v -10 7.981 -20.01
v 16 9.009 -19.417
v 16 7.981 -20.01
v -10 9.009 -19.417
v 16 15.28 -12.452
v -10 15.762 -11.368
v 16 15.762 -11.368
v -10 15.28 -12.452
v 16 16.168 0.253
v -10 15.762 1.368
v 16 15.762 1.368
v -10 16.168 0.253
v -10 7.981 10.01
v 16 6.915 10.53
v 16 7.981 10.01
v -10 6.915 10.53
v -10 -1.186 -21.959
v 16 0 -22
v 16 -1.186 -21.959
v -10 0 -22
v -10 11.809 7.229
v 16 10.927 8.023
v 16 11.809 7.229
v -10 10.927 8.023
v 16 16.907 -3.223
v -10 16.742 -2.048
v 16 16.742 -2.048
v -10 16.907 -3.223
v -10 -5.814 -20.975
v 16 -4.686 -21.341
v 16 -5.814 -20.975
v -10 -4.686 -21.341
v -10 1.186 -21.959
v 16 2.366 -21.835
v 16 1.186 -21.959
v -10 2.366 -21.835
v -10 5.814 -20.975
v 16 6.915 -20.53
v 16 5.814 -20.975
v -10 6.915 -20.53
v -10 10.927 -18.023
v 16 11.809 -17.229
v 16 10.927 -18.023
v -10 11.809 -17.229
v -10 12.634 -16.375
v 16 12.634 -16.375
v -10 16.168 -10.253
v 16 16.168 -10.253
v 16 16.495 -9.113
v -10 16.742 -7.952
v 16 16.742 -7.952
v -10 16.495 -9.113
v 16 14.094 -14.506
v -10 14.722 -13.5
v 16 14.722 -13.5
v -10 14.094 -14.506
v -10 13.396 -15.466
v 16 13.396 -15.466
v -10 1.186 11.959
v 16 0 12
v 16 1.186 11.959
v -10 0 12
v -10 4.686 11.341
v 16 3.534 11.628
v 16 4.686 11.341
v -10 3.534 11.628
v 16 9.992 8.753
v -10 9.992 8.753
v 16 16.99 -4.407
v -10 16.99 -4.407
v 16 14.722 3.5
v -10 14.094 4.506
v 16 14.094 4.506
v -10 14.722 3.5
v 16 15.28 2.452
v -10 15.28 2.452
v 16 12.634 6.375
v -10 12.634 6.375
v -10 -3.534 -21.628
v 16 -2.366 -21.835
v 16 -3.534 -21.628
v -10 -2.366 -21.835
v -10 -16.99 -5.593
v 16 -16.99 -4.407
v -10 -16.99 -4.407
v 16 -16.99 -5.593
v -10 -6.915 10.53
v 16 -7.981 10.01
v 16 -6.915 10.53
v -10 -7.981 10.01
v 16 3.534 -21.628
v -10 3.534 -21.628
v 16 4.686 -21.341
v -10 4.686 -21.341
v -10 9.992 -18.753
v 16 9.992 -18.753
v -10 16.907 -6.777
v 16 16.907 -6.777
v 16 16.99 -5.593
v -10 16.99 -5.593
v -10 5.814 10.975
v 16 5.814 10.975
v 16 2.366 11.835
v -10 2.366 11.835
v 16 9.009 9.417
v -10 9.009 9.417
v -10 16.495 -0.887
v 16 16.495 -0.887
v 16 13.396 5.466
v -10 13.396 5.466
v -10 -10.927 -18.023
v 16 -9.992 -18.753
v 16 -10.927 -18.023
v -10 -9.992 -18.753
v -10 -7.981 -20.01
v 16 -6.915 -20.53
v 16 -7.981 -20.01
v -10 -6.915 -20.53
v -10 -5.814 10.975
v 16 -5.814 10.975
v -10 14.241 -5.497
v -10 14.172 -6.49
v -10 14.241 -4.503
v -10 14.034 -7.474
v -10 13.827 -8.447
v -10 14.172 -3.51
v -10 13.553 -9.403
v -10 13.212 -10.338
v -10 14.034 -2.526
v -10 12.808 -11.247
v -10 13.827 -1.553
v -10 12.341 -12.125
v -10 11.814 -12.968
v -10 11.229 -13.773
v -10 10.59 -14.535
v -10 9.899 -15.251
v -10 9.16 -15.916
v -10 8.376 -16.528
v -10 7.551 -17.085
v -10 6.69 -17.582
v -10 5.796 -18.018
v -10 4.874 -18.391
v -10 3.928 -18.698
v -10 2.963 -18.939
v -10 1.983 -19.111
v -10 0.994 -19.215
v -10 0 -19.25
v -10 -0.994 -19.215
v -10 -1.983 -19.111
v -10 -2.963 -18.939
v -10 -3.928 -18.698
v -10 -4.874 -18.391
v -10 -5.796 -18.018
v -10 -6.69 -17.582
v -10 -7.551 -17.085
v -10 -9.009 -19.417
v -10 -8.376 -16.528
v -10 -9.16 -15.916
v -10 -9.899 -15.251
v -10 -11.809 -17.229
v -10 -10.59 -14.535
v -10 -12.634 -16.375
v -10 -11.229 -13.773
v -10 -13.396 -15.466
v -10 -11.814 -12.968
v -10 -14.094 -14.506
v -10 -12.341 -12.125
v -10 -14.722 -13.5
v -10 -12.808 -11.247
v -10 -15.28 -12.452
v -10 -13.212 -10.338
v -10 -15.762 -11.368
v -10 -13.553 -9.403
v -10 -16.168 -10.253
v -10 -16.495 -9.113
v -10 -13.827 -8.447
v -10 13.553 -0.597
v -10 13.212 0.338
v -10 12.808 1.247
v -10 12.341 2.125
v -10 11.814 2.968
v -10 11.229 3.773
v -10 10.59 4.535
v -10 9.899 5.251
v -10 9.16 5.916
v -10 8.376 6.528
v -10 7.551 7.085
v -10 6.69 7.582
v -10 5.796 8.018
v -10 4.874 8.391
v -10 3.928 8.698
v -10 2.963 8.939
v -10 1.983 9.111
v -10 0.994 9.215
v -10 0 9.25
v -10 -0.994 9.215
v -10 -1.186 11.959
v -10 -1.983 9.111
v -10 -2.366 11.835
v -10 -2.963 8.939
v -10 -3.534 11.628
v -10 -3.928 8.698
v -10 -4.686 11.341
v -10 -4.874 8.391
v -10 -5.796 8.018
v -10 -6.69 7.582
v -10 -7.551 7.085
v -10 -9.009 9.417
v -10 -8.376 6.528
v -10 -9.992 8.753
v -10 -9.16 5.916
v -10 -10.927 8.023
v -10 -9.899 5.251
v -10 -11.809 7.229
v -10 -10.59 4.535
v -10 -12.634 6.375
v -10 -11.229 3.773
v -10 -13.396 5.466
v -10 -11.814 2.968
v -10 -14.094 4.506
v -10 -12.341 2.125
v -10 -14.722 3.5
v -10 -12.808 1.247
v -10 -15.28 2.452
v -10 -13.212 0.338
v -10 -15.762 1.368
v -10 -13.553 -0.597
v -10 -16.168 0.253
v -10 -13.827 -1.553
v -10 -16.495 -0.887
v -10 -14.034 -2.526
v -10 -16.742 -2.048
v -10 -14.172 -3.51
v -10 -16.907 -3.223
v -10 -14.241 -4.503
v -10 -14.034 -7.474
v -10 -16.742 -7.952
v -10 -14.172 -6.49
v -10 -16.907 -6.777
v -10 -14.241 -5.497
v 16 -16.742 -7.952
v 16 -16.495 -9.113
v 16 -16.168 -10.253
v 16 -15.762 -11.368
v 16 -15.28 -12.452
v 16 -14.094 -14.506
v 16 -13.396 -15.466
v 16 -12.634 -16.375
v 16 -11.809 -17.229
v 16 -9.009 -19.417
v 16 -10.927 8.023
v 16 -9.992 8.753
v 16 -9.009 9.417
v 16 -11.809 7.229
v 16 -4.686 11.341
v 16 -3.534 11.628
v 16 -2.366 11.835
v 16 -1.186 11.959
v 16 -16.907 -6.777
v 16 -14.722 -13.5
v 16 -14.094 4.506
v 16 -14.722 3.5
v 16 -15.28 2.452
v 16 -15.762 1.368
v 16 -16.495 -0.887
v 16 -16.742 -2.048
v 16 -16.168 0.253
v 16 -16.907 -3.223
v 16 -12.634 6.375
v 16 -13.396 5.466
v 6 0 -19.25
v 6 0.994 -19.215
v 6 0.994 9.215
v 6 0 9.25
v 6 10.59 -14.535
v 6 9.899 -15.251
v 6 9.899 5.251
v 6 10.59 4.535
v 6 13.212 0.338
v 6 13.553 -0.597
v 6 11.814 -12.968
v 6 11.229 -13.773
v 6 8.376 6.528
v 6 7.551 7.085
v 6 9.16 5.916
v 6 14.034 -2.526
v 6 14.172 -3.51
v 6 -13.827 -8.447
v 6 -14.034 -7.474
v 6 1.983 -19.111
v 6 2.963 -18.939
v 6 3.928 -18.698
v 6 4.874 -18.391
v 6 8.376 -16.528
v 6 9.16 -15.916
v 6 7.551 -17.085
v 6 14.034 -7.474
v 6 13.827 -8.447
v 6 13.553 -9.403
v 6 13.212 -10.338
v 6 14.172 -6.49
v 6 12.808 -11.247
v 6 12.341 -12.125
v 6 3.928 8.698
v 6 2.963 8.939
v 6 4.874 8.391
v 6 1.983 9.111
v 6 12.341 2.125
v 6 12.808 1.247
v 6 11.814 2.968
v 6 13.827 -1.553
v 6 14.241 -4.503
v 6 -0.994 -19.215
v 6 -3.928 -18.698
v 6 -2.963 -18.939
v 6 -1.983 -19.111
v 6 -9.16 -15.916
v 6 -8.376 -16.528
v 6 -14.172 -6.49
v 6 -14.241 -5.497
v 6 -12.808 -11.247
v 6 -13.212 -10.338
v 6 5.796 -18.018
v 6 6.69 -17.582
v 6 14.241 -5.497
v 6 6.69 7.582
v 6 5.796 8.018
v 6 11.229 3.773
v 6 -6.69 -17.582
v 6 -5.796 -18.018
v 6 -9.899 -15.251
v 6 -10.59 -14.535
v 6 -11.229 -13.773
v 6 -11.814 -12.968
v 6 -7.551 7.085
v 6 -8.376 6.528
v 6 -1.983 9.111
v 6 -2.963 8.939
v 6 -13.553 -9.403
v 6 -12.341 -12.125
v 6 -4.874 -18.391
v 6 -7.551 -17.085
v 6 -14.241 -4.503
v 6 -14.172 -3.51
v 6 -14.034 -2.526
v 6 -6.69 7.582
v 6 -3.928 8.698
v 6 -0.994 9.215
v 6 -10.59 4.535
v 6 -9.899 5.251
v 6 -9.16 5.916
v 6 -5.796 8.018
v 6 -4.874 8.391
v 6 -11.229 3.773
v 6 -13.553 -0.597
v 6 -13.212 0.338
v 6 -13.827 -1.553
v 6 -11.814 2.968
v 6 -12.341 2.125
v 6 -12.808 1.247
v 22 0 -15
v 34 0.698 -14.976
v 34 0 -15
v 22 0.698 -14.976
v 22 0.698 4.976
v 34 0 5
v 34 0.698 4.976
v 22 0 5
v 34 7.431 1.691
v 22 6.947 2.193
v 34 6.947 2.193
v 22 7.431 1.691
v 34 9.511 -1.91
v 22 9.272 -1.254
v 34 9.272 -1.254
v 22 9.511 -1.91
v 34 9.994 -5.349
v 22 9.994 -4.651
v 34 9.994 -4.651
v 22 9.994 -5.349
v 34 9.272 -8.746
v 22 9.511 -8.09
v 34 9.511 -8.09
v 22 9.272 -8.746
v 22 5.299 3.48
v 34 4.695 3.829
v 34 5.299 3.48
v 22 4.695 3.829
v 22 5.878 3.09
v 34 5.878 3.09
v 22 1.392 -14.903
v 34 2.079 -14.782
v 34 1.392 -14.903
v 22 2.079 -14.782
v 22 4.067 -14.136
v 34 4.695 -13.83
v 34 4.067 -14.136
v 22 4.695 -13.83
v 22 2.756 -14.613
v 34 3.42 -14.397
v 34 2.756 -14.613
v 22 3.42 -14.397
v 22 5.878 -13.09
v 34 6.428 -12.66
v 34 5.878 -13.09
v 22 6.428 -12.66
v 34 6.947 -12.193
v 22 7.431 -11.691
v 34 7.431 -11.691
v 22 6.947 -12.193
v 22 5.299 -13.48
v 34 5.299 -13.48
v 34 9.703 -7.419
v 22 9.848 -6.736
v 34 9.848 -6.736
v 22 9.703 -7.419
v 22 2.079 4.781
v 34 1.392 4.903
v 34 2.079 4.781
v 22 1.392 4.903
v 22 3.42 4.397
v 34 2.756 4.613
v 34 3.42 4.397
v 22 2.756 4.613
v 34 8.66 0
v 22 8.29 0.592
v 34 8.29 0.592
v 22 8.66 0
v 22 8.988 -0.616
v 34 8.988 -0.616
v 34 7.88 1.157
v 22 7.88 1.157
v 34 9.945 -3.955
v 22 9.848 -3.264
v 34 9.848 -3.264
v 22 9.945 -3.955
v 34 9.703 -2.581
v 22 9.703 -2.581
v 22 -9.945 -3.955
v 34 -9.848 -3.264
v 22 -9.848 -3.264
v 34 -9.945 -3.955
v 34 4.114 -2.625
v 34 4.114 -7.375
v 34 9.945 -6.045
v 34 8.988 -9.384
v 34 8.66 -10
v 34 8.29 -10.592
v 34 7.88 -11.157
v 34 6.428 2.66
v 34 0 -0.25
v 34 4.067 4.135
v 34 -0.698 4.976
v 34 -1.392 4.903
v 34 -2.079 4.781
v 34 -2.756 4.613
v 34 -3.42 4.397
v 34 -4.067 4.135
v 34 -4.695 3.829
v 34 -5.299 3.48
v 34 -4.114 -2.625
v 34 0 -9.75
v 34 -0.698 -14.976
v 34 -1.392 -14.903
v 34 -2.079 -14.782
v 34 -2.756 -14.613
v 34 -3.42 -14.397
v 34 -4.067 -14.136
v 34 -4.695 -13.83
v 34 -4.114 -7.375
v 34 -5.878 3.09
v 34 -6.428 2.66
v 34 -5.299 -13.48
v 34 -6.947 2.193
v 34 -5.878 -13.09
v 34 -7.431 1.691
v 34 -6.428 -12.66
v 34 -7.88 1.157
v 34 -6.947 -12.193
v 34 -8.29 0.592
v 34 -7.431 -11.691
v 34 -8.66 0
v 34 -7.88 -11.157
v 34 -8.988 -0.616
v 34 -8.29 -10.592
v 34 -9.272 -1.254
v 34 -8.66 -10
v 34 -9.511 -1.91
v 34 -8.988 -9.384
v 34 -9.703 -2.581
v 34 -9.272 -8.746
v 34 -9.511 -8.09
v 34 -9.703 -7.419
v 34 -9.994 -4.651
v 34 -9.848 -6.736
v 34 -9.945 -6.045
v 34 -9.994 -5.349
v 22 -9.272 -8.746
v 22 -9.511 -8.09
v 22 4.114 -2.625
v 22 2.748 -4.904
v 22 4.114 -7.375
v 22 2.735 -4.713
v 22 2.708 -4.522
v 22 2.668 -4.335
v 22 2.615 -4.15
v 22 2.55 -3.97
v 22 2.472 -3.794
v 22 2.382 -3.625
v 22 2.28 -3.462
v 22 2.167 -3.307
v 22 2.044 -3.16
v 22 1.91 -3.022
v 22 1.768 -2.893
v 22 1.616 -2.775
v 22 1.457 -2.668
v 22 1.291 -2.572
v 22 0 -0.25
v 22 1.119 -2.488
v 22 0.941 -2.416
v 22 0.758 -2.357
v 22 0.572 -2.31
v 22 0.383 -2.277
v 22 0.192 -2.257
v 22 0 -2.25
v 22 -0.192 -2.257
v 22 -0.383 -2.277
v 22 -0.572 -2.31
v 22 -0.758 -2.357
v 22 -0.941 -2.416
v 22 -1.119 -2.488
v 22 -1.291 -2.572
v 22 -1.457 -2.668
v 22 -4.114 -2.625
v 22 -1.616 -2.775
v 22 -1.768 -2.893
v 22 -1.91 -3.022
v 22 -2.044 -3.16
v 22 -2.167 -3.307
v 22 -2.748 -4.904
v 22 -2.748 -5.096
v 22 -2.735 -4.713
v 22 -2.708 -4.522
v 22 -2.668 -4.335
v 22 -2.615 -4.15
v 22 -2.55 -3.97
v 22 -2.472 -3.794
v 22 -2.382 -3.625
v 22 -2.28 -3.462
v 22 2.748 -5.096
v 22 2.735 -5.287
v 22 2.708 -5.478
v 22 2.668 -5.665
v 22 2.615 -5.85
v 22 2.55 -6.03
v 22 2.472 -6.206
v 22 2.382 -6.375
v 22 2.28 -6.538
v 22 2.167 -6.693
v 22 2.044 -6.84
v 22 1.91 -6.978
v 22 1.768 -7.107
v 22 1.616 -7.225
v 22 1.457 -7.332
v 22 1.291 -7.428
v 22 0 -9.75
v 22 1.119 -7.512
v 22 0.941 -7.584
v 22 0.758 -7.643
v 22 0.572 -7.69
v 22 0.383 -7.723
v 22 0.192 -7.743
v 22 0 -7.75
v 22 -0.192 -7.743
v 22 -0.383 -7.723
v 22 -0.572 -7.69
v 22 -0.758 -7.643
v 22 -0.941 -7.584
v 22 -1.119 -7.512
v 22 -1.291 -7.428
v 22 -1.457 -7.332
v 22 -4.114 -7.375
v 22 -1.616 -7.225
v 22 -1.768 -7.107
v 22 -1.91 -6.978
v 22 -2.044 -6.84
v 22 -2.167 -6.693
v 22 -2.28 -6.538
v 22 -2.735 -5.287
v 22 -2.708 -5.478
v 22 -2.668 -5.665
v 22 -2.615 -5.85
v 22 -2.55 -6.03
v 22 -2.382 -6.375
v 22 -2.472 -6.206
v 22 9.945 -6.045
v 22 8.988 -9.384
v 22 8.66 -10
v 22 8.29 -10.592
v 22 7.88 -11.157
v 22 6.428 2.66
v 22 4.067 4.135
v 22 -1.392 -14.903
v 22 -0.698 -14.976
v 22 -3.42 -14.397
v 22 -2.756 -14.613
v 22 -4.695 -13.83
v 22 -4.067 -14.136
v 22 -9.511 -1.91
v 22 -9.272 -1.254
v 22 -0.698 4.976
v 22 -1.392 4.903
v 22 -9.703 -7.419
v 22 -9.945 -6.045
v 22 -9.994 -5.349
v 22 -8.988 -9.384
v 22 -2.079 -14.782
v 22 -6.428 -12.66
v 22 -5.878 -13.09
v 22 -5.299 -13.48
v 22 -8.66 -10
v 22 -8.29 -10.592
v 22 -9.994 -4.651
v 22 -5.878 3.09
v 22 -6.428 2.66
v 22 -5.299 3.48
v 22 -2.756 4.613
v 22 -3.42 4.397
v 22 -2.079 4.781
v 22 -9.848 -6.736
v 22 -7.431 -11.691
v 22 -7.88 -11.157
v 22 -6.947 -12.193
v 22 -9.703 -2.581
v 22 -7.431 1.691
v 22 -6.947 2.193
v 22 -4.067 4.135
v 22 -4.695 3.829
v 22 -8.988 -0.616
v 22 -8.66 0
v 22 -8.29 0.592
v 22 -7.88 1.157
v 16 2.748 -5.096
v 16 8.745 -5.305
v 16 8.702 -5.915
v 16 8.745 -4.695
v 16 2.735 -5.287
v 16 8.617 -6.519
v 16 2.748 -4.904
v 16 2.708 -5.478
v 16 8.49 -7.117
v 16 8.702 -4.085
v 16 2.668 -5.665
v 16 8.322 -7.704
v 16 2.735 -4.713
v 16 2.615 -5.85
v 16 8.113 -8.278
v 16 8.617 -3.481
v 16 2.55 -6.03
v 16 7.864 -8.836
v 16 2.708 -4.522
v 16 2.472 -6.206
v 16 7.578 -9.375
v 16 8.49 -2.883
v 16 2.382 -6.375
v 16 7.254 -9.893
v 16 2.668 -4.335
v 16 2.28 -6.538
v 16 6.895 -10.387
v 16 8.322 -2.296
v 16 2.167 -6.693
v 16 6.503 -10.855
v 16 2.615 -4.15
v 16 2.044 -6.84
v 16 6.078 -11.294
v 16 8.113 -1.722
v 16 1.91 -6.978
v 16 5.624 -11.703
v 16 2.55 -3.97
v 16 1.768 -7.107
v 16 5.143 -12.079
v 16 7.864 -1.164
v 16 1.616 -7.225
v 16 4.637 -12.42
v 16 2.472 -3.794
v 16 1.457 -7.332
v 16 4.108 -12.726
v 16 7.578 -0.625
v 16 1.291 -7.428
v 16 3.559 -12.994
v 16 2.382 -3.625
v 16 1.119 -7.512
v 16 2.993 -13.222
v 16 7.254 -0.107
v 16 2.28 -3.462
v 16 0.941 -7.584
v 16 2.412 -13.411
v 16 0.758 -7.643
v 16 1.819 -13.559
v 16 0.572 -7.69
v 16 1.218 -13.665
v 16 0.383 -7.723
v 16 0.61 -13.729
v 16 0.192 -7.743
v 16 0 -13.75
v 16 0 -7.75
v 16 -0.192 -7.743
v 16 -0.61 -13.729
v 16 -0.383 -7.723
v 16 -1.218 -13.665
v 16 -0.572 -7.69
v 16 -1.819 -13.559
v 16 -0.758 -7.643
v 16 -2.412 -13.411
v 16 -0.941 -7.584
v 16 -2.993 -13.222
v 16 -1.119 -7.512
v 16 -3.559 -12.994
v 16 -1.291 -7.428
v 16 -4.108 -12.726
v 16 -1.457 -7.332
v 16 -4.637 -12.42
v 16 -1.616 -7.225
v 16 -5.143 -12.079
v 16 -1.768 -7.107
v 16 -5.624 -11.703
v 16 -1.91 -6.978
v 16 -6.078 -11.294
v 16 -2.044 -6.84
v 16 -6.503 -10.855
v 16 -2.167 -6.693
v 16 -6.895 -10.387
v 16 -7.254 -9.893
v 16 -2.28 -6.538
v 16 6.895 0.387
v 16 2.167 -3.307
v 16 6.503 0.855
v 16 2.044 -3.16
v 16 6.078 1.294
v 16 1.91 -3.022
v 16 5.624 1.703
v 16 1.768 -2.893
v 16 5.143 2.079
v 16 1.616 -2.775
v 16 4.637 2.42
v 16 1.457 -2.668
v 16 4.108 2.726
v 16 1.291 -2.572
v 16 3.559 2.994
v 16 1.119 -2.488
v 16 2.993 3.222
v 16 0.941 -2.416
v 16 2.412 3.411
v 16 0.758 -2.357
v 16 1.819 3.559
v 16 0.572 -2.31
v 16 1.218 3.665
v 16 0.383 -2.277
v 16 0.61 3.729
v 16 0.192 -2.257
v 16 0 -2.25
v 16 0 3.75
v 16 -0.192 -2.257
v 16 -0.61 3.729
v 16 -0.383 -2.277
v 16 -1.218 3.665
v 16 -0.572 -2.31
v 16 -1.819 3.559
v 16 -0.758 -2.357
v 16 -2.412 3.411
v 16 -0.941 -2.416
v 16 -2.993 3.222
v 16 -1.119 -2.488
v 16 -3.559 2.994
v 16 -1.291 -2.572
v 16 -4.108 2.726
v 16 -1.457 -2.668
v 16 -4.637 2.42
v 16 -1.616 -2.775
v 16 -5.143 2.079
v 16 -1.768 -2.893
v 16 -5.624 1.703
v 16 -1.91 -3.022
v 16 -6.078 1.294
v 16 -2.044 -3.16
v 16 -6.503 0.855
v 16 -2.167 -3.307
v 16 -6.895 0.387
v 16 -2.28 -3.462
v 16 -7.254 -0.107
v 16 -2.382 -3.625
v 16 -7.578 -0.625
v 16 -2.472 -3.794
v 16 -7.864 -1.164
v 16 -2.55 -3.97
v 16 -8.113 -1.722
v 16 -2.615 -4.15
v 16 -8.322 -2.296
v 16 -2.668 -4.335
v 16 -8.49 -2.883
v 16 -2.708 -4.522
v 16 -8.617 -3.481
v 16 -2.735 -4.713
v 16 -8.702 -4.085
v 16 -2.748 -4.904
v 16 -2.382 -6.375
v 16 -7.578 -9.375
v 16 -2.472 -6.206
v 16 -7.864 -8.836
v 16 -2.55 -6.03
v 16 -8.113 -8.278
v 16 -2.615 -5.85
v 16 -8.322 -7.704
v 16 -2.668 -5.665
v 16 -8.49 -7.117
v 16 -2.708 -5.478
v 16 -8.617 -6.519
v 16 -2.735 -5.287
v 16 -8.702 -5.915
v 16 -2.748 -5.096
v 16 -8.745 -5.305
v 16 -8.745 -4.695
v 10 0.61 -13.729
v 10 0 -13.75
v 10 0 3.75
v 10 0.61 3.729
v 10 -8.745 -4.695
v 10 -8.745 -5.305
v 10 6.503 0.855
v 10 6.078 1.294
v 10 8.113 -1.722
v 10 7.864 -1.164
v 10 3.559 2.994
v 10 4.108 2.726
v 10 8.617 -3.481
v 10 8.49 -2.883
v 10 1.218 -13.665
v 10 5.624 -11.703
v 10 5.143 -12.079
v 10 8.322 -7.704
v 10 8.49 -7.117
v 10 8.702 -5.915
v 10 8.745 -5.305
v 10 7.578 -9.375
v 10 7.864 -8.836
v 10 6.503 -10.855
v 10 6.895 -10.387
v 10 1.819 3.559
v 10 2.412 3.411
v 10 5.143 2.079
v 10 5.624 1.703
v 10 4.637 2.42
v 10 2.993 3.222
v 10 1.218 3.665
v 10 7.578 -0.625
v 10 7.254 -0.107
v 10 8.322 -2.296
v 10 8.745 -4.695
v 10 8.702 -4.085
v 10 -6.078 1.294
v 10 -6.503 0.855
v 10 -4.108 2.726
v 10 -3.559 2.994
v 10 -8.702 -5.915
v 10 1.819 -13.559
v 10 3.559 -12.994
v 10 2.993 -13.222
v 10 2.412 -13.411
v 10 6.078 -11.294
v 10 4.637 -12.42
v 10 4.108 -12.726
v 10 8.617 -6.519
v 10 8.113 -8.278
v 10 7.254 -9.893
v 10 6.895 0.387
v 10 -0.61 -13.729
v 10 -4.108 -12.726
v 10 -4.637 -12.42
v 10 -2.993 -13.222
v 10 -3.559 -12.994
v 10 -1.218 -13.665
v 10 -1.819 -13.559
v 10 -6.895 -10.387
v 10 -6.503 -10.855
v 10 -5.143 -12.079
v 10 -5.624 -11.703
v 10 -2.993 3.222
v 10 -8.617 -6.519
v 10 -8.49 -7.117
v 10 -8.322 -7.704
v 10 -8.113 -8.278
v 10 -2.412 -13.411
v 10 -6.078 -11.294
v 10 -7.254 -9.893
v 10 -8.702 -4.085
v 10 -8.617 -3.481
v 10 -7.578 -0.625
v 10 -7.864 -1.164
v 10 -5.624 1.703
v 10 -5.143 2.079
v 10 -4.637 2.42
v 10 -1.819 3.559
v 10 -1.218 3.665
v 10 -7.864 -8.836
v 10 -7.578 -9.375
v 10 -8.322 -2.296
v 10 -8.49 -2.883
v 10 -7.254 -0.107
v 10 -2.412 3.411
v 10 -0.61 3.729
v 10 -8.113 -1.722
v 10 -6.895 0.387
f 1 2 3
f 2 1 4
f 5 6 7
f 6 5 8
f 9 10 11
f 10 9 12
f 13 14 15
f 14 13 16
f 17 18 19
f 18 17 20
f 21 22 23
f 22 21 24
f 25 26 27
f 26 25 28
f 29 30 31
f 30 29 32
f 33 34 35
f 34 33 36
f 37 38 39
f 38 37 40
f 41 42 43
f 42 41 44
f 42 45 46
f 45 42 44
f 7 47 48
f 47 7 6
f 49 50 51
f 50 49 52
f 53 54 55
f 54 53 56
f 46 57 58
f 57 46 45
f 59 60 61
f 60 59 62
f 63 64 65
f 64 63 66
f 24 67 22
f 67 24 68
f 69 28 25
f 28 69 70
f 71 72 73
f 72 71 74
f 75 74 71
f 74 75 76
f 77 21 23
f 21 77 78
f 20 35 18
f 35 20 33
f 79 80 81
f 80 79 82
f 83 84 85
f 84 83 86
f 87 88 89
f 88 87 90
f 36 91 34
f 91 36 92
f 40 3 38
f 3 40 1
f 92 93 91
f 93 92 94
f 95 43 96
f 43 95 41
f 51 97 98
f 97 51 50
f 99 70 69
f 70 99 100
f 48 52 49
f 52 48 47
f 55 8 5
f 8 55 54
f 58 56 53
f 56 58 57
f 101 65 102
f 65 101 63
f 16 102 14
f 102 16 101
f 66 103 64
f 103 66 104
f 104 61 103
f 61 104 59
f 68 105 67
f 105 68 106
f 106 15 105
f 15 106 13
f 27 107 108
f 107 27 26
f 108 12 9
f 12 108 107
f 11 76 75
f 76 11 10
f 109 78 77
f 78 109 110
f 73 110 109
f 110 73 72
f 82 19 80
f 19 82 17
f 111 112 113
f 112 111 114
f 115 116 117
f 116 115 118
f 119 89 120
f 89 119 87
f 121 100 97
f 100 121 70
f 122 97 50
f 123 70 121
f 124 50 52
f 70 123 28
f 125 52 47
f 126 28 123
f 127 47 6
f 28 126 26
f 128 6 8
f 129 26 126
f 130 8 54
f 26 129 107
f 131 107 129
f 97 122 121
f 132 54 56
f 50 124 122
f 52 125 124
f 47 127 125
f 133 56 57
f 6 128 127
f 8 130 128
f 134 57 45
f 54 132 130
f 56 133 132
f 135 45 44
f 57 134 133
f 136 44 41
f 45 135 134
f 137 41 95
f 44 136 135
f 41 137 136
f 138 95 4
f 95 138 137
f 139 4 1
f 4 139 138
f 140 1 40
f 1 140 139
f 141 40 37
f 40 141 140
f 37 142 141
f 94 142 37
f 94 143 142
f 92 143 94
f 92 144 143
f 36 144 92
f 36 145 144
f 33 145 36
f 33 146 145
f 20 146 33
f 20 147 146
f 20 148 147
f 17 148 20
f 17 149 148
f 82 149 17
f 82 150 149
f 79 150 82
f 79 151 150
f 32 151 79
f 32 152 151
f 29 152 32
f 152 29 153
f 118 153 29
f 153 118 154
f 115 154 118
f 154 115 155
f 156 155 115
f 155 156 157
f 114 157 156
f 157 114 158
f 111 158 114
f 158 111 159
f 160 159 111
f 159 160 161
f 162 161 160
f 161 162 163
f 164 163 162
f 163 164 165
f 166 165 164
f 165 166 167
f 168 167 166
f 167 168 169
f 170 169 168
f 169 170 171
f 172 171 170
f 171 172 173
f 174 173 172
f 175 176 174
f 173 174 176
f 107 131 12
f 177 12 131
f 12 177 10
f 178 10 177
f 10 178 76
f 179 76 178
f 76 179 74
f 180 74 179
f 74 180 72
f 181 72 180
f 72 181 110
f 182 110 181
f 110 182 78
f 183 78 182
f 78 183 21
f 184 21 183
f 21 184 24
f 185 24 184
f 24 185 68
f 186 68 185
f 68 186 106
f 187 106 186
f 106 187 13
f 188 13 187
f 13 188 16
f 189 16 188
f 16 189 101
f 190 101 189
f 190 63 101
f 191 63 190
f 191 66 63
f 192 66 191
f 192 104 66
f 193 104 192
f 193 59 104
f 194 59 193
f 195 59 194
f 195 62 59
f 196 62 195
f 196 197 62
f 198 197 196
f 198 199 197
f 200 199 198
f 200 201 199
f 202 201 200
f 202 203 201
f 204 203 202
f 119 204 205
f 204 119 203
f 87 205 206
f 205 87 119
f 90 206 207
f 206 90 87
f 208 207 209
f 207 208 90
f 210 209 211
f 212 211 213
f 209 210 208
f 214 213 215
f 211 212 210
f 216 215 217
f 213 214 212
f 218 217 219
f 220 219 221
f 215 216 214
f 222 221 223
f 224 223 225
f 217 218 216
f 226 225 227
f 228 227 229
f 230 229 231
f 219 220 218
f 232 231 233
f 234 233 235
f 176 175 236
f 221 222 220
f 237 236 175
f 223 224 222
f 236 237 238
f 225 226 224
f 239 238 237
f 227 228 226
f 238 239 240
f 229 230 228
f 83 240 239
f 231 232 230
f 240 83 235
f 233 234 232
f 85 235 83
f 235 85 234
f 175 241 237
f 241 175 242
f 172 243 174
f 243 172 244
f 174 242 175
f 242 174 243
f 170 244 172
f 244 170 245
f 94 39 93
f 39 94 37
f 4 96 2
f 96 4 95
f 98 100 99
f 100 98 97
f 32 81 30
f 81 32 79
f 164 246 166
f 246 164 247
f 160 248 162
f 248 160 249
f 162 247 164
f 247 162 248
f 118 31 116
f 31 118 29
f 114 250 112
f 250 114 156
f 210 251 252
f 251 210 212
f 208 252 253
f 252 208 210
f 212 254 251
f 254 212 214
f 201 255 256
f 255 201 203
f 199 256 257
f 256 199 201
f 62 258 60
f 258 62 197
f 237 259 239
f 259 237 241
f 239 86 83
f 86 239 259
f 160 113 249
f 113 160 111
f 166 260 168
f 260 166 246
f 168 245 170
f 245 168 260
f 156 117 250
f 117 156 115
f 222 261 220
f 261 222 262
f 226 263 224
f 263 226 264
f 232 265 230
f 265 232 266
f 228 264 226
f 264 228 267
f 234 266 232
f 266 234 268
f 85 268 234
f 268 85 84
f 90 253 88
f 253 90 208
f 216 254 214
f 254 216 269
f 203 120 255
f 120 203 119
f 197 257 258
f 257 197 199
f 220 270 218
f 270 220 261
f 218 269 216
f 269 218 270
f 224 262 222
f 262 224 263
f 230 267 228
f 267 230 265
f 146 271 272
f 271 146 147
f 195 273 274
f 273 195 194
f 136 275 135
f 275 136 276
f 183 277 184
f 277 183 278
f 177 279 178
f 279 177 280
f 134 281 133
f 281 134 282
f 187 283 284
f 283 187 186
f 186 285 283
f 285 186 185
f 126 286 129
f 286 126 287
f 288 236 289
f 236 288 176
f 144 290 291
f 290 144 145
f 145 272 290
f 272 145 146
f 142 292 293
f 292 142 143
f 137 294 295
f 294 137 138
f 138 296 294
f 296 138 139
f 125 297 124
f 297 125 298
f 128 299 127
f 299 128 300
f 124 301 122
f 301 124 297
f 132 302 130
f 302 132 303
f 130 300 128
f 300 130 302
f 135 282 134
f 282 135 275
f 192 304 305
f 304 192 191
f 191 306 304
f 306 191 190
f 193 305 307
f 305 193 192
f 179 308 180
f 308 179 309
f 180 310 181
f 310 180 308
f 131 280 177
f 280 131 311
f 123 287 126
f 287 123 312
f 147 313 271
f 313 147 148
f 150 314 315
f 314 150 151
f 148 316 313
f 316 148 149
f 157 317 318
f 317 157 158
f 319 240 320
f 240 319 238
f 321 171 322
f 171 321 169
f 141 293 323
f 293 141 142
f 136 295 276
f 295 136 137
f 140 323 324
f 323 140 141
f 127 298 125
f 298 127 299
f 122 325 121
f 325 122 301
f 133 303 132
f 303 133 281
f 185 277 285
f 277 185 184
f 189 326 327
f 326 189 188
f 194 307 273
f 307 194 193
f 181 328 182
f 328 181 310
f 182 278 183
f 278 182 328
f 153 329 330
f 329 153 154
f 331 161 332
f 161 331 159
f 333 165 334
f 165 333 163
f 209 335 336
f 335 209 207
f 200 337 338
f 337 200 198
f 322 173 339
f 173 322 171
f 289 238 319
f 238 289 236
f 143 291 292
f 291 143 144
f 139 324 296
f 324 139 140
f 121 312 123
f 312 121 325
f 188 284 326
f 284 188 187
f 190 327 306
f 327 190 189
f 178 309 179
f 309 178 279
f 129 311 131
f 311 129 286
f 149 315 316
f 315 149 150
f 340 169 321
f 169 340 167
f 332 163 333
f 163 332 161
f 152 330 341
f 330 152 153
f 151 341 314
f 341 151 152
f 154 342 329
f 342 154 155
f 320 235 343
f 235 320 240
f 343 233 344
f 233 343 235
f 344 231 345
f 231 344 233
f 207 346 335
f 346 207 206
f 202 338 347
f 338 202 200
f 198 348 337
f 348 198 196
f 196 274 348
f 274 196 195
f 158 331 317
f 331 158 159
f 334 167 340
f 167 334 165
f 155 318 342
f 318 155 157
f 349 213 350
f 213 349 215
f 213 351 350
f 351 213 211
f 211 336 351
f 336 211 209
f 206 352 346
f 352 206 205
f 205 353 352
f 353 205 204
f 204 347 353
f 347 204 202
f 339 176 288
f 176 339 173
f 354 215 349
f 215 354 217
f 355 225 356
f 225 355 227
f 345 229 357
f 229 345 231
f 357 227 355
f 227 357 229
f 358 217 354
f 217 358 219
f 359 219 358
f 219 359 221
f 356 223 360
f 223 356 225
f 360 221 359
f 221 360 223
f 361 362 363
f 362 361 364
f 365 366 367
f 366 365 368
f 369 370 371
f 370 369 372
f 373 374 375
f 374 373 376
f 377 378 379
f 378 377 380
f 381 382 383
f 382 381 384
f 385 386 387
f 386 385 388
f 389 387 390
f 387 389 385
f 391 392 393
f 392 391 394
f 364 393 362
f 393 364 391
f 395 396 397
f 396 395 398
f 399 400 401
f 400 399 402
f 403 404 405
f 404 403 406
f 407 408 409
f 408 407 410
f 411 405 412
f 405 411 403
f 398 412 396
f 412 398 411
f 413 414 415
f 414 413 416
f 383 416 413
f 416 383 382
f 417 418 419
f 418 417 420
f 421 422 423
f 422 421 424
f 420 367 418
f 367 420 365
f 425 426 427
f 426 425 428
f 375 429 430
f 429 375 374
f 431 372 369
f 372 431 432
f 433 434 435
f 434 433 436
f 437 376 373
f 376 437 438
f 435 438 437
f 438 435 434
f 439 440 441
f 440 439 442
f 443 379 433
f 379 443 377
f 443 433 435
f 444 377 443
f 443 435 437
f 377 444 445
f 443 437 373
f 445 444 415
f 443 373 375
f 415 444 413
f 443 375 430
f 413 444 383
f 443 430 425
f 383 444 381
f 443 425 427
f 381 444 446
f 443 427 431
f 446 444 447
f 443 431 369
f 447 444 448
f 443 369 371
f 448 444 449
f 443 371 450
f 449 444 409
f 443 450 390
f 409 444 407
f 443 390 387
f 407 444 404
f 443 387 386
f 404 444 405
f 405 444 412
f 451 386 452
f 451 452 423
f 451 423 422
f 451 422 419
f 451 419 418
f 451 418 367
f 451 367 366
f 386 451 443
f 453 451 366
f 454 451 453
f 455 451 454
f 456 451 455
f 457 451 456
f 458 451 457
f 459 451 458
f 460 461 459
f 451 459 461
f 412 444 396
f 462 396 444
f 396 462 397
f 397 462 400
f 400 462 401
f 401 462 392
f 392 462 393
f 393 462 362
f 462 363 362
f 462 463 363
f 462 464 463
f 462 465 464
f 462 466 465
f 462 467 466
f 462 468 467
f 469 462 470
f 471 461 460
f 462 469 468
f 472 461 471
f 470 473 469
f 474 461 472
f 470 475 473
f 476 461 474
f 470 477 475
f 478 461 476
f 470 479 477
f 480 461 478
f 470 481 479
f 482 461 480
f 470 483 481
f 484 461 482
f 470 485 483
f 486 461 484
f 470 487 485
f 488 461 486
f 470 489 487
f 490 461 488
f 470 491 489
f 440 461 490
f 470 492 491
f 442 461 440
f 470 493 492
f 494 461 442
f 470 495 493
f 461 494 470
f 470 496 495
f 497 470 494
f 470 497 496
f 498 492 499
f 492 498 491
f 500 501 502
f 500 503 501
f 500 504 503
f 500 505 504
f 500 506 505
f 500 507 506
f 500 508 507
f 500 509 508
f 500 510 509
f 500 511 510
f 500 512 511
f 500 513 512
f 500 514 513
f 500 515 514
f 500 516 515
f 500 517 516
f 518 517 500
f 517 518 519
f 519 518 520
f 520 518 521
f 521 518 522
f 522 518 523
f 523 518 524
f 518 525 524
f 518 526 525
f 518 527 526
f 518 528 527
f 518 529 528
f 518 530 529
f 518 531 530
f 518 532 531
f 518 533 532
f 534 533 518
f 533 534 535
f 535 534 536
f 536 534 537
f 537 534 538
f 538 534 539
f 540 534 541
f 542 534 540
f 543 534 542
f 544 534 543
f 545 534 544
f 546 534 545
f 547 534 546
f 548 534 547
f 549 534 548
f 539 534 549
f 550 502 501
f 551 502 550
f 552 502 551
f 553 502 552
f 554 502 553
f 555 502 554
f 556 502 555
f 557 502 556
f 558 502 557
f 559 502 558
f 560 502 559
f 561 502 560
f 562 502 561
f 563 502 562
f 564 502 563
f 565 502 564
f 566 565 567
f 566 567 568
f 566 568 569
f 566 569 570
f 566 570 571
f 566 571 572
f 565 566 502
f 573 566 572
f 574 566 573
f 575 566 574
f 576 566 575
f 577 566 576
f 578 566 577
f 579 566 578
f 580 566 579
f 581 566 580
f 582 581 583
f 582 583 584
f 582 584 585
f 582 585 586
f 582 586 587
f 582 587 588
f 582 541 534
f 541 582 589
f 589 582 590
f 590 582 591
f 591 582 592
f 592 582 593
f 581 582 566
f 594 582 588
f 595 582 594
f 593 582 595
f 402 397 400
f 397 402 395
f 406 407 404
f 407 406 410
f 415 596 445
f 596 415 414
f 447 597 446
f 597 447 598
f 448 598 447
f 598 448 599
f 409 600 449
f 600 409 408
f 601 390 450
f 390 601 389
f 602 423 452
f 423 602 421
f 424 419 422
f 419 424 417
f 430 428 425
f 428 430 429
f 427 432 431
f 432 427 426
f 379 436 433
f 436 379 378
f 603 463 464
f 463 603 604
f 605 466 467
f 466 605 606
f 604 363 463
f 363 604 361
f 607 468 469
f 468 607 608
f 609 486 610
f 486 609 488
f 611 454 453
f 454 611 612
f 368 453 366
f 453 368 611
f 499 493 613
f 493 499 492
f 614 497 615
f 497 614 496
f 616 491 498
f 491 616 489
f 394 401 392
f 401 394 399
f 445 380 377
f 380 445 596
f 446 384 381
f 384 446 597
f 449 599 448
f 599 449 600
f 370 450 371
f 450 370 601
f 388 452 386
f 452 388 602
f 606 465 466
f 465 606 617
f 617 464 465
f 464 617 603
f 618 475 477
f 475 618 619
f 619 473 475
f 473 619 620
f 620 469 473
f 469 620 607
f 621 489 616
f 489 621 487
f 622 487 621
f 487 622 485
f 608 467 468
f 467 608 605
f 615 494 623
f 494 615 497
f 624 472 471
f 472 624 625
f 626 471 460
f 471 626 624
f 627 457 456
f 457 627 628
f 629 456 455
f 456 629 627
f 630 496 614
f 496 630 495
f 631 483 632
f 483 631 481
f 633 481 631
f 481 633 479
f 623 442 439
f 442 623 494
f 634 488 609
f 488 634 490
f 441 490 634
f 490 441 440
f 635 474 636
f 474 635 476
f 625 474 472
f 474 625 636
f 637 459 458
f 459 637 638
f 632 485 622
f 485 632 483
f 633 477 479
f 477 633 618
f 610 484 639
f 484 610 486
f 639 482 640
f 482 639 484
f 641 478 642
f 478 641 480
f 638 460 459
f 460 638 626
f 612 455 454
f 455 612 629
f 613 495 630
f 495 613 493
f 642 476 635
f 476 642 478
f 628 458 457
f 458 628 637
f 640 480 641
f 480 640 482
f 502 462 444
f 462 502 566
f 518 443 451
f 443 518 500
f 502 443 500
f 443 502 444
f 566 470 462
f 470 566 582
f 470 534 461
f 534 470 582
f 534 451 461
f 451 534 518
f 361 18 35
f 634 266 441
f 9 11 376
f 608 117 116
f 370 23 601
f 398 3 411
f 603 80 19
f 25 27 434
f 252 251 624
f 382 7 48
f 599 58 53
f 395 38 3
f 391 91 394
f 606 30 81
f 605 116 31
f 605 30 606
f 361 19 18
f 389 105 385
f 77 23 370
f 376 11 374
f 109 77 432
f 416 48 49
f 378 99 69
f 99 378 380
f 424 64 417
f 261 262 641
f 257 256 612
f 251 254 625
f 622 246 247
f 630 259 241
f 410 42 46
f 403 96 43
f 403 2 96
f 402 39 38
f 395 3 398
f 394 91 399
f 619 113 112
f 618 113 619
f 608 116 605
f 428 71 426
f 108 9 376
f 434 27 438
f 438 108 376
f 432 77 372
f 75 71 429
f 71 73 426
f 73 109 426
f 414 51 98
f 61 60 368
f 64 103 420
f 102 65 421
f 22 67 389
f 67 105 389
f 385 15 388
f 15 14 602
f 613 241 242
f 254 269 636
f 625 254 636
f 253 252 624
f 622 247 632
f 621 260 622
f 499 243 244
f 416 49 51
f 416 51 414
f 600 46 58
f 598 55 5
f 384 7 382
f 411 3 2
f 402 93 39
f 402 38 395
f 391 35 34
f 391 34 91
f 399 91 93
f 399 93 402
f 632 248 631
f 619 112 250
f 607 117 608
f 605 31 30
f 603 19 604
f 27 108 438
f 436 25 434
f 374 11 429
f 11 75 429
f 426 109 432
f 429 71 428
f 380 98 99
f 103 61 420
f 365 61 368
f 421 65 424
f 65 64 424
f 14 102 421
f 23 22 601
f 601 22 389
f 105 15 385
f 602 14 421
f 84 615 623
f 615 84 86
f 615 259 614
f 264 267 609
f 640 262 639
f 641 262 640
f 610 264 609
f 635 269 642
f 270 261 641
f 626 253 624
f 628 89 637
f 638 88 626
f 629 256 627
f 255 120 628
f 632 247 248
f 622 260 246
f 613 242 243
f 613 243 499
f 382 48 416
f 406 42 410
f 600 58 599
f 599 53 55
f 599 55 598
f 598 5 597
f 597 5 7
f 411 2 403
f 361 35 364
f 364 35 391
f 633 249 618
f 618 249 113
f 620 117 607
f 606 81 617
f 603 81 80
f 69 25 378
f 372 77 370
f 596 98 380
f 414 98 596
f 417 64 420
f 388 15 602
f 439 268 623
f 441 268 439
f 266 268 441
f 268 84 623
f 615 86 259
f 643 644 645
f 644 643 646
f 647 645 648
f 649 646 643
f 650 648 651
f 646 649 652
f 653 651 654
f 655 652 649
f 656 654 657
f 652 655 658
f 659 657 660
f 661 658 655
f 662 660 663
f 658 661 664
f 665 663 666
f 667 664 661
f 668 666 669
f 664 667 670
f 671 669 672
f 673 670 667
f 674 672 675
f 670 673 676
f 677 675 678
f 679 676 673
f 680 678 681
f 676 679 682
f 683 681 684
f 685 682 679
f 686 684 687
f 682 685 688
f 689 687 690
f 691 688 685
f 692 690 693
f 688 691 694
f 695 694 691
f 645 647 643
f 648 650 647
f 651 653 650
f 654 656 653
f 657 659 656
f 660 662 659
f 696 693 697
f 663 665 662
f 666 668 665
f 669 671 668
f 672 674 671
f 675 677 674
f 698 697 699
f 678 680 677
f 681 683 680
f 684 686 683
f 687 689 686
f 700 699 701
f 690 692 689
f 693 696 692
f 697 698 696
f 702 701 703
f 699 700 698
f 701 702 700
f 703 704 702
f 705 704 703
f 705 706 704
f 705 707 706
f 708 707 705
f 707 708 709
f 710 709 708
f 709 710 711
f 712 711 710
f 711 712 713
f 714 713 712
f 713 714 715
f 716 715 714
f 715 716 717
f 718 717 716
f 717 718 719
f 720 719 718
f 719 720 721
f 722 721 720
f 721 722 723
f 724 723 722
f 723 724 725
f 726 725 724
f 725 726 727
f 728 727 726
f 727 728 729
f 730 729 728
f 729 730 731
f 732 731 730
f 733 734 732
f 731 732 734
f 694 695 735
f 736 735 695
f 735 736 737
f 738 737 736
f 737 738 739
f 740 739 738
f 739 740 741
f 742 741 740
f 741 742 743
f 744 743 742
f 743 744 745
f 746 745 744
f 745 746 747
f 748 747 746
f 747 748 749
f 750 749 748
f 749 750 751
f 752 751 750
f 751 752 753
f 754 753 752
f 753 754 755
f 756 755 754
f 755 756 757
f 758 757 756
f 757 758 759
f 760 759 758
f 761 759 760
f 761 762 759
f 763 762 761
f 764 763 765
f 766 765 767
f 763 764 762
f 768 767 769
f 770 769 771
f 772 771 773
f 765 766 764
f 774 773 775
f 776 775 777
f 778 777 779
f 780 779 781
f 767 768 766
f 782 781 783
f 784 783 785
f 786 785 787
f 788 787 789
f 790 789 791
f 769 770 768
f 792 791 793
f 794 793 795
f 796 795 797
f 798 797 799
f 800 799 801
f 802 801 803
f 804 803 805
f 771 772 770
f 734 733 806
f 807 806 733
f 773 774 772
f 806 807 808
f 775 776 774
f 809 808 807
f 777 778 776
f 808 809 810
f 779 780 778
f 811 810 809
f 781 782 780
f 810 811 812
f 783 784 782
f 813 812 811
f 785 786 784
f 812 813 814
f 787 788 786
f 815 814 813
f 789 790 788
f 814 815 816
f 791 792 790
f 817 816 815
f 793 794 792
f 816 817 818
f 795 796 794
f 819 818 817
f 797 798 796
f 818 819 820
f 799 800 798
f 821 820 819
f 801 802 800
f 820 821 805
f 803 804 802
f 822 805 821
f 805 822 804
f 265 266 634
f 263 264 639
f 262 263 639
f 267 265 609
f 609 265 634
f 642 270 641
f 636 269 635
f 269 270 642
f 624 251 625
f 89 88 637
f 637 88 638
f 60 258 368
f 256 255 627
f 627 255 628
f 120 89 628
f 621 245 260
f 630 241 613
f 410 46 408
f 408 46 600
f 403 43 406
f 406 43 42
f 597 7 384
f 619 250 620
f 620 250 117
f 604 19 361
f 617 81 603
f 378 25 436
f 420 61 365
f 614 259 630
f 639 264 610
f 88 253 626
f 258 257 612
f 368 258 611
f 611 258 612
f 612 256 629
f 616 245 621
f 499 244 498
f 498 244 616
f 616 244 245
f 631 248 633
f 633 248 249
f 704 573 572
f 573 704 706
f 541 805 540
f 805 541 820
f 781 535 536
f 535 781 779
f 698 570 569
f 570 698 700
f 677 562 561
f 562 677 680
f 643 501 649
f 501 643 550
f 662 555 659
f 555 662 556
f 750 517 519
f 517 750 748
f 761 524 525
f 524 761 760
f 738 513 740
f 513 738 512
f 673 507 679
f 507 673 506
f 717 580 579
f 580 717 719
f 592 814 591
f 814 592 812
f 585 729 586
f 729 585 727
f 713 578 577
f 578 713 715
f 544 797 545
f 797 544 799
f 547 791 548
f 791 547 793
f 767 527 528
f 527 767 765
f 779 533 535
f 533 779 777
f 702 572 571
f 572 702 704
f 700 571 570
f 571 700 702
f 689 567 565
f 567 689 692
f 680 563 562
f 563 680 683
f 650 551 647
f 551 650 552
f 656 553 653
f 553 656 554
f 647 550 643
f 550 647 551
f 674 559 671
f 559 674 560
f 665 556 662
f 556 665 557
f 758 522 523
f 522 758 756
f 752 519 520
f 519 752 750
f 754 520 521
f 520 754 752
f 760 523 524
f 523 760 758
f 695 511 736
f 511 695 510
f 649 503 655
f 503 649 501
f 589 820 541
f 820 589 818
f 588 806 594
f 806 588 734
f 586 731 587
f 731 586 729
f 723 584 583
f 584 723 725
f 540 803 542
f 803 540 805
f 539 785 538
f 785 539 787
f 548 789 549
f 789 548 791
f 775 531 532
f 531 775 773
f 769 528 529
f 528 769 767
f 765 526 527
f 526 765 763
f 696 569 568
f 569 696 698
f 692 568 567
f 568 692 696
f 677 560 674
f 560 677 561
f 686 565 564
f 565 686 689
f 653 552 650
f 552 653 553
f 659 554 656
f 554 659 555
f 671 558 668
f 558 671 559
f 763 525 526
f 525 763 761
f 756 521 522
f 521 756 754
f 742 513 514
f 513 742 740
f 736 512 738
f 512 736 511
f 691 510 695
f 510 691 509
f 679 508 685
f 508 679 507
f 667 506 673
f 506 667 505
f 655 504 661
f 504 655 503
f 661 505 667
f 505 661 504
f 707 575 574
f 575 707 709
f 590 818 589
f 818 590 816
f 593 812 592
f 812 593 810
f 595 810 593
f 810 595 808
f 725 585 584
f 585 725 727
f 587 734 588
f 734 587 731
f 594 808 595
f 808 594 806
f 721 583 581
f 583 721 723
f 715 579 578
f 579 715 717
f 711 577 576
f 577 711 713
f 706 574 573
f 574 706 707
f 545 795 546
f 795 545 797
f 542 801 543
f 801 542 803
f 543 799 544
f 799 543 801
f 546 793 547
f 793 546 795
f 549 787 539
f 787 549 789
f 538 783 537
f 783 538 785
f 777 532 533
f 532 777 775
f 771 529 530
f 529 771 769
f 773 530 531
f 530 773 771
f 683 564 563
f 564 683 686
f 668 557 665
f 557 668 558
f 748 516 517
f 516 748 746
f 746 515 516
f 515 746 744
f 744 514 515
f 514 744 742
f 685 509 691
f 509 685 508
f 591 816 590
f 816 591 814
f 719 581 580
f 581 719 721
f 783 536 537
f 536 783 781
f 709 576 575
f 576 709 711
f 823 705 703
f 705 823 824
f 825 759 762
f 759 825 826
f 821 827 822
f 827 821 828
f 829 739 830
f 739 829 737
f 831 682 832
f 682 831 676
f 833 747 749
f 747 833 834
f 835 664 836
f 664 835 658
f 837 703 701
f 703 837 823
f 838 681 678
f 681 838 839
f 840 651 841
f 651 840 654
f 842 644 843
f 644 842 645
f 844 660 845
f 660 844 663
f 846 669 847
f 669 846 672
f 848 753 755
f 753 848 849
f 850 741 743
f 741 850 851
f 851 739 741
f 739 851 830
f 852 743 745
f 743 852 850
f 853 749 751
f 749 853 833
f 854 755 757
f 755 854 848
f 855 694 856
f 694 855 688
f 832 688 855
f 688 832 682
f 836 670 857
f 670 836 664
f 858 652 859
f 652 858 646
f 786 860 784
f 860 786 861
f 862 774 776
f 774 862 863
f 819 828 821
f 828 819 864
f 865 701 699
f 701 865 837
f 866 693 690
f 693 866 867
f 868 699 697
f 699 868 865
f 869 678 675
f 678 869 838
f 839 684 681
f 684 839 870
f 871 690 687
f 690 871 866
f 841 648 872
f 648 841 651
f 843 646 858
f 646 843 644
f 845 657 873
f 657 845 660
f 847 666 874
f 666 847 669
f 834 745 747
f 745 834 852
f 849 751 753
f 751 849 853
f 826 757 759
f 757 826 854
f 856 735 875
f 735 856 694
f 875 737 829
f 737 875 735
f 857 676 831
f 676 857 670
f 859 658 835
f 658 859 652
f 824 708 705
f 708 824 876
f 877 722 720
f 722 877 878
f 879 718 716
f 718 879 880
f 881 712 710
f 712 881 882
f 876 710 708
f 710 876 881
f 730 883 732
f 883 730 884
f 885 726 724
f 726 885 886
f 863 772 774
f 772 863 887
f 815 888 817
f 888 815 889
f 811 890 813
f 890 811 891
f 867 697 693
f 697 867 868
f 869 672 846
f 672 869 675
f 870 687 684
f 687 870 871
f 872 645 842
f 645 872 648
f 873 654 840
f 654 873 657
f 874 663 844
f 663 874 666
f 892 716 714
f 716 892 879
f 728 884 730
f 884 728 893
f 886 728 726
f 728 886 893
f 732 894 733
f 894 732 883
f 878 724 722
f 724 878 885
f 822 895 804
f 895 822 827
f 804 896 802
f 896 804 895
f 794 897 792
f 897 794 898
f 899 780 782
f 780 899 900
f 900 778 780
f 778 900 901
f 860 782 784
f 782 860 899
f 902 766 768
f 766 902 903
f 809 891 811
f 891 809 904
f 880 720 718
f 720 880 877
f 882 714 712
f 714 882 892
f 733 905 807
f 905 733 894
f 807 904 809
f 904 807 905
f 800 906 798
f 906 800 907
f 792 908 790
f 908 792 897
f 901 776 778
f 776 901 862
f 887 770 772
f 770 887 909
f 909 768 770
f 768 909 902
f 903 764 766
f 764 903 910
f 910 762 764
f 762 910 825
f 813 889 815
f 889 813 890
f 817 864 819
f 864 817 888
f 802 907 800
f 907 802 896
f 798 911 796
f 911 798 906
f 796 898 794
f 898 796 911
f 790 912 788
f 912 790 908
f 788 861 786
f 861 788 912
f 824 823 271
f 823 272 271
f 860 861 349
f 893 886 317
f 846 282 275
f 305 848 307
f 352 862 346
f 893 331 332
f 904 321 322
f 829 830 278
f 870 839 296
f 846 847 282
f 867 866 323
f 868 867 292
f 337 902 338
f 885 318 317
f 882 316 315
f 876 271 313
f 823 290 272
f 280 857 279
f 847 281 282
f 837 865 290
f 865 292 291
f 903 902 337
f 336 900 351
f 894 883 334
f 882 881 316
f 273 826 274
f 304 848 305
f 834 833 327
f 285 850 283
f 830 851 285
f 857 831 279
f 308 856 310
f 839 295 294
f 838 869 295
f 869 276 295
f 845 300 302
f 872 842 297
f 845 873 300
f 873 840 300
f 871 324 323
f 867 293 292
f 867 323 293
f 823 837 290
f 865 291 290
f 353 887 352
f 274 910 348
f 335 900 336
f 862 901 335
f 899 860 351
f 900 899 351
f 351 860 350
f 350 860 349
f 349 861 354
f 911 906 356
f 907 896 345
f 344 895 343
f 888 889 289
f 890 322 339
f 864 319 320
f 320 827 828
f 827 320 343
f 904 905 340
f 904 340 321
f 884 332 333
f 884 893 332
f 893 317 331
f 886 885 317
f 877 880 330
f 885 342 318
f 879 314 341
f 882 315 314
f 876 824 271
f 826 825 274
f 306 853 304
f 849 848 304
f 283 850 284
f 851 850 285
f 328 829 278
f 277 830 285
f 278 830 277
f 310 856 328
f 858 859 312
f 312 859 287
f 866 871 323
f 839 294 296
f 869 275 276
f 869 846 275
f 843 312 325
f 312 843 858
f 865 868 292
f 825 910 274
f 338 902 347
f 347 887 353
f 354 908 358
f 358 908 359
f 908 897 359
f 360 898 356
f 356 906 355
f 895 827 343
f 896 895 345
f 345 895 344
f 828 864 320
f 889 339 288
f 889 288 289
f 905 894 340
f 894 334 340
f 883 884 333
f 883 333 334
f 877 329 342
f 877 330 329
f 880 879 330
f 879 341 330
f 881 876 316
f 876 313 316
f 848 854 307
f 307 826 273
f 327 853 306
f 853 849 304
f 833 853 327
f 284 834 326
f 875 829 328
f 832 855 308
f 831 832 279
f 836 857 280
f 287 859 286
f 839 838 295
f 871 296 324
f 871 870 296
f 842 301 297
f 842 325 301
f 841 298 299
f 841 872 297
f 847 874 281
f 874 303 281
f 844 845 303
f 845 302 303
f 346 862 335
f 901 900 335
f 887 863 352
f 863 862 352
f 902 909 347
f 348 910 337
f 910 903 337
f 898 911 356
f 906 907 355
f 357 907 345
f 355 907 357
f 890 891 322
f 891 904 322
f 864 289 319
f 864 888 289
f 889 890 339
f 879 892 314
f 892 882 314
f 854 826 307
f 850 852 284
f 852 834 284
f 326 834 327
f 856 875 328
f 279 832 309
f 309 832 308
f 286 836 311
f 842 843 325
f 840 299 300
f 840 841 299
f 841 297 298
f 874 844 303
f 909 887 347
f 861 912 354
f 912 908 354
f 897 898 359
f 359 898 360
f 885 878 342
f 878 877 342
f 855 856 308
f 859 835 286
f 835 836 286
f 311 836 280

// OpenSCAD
difference(){ 
translate([19,0,-5]) rotate([0,90,0])  cylinder(h=6, d1=34,d2=20, $fn = 90, center = true);    
    
translate([19,0,-5]) rotate([0,90,0])  cylinder(h=12, d=5+0.5, $fn = 90, center = true); 
} 

//nut holder
translate([9,0,0]){   
difference(){ 
translate([19,0,-5]) rotate([0,90,0])  cylinder(h=12, d=20, $fn = 90, center = true);    
    
translate([19,0,-5]) rotate([0,90,0])  cylinder(h=13, d=9+0.5, $fn = 6, center = true); 
}
}

//middle part
difference(){ 
translate([13,0,-5]) rotate([0,90,0])  cylinder(h=6, d=34, $fn = 90, center = true);    
    
translate([13,0,-5]) rotate([0,90,0])  cylinder(h=7, d=17+0.5, $fn = 90, center = true); 
}


//inner cone

difference(){ 
translate([8,0,-5]) rotate([0,90,0])  cylinder(h=4, d=34, $fn = 90, center = true);    
    
translate([8,0,-5]) rotate([0,90,0])  cylinder(h=4, d2=17+0.5,d1=28+0.5, $fn = 90, center = true); 
}



//Back part

difference(){ 
translate([-2,0,-5]) rotate([0,90,0])  cylinder(h=16, d=34, $fn = 90, center = true);    
    
translate([-2,0,-5]) rotate([0,90,0])  cylinder(h=17, d=28+0.5, $fn = 90, center = true); 
}
